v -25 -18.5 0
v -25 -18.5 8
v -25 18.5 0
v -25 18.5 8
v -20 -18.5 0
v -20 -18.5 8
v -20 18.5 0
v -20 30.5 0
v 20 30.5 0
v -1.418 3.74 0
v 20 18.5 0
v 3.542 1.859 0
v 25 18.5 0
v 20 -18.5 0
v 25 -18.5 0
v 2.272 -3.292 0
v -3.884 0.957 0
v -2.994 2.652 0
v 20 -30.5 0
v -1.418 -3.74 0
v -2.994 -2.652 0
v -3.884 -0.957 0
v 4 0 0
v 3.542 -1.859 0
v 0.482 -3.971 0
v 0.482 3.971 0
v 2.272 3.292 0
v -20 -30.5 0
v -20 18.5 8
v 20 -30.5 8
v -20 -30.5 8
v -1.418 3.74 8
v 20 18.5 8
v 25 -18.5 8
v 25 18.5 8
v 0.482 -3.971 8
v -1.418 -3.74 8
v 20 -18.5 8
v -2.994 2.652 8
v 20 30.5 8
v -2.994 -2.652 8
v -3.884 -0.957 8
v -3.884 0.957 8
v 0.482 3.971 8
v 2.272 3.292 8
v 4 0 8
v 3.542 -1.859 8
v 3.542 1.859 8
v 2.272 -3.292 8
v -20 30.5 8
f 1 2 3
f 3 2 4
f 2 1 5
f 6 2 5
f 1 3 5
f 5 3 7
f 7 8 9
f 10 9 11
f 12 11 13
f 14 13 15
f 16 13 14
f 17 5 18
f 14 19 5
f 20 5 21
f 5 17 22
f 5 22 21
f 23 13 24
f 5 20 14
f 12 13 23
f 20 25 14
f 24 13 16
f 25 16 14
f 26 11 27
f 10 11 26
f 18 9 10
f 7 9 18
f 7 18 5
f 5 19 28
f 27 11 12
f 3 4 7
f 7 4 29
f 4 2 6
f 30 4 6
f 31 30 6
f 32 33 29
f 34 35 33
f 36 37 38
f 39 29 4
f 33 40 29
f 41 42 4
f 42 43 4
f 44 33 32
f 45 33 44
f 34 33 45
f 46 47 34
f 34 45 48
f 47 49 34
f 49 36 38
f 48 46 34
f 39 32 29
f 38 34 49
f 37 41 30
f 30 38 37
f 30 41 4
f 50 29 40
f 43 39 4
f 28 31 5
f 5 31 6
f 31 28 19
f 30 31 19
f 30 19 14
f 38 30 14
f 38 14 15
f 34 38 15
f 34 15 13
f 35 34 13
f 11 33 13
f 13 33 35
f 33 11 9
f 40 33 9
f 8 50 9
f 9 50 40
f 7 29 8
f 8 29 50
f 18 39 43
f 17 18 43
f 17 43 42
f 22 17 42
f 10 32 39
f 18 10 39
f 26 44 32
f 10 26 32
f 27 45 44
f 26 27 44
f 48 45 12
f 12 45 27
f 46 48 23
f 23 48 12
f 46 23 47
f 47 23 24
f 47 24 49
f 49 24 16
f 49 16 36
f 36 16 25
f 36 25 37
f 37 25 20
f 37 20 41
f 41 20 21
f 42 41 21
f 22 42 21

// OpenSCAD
/*translate([-25,-30.5,0])
linear_extrude(height = 8, center = false, convexity = 10, twist = 0)
import(file="part15_22.dxf", layer="Layer_1", origin = [0,0], scale = 1);
*/

difference() {
translate([0,0,4])
union(){
cube([40,61,8],true);
cube([50,37,8],true);
}
translate([0,0,-1])cylinder(10,r=4);
}
